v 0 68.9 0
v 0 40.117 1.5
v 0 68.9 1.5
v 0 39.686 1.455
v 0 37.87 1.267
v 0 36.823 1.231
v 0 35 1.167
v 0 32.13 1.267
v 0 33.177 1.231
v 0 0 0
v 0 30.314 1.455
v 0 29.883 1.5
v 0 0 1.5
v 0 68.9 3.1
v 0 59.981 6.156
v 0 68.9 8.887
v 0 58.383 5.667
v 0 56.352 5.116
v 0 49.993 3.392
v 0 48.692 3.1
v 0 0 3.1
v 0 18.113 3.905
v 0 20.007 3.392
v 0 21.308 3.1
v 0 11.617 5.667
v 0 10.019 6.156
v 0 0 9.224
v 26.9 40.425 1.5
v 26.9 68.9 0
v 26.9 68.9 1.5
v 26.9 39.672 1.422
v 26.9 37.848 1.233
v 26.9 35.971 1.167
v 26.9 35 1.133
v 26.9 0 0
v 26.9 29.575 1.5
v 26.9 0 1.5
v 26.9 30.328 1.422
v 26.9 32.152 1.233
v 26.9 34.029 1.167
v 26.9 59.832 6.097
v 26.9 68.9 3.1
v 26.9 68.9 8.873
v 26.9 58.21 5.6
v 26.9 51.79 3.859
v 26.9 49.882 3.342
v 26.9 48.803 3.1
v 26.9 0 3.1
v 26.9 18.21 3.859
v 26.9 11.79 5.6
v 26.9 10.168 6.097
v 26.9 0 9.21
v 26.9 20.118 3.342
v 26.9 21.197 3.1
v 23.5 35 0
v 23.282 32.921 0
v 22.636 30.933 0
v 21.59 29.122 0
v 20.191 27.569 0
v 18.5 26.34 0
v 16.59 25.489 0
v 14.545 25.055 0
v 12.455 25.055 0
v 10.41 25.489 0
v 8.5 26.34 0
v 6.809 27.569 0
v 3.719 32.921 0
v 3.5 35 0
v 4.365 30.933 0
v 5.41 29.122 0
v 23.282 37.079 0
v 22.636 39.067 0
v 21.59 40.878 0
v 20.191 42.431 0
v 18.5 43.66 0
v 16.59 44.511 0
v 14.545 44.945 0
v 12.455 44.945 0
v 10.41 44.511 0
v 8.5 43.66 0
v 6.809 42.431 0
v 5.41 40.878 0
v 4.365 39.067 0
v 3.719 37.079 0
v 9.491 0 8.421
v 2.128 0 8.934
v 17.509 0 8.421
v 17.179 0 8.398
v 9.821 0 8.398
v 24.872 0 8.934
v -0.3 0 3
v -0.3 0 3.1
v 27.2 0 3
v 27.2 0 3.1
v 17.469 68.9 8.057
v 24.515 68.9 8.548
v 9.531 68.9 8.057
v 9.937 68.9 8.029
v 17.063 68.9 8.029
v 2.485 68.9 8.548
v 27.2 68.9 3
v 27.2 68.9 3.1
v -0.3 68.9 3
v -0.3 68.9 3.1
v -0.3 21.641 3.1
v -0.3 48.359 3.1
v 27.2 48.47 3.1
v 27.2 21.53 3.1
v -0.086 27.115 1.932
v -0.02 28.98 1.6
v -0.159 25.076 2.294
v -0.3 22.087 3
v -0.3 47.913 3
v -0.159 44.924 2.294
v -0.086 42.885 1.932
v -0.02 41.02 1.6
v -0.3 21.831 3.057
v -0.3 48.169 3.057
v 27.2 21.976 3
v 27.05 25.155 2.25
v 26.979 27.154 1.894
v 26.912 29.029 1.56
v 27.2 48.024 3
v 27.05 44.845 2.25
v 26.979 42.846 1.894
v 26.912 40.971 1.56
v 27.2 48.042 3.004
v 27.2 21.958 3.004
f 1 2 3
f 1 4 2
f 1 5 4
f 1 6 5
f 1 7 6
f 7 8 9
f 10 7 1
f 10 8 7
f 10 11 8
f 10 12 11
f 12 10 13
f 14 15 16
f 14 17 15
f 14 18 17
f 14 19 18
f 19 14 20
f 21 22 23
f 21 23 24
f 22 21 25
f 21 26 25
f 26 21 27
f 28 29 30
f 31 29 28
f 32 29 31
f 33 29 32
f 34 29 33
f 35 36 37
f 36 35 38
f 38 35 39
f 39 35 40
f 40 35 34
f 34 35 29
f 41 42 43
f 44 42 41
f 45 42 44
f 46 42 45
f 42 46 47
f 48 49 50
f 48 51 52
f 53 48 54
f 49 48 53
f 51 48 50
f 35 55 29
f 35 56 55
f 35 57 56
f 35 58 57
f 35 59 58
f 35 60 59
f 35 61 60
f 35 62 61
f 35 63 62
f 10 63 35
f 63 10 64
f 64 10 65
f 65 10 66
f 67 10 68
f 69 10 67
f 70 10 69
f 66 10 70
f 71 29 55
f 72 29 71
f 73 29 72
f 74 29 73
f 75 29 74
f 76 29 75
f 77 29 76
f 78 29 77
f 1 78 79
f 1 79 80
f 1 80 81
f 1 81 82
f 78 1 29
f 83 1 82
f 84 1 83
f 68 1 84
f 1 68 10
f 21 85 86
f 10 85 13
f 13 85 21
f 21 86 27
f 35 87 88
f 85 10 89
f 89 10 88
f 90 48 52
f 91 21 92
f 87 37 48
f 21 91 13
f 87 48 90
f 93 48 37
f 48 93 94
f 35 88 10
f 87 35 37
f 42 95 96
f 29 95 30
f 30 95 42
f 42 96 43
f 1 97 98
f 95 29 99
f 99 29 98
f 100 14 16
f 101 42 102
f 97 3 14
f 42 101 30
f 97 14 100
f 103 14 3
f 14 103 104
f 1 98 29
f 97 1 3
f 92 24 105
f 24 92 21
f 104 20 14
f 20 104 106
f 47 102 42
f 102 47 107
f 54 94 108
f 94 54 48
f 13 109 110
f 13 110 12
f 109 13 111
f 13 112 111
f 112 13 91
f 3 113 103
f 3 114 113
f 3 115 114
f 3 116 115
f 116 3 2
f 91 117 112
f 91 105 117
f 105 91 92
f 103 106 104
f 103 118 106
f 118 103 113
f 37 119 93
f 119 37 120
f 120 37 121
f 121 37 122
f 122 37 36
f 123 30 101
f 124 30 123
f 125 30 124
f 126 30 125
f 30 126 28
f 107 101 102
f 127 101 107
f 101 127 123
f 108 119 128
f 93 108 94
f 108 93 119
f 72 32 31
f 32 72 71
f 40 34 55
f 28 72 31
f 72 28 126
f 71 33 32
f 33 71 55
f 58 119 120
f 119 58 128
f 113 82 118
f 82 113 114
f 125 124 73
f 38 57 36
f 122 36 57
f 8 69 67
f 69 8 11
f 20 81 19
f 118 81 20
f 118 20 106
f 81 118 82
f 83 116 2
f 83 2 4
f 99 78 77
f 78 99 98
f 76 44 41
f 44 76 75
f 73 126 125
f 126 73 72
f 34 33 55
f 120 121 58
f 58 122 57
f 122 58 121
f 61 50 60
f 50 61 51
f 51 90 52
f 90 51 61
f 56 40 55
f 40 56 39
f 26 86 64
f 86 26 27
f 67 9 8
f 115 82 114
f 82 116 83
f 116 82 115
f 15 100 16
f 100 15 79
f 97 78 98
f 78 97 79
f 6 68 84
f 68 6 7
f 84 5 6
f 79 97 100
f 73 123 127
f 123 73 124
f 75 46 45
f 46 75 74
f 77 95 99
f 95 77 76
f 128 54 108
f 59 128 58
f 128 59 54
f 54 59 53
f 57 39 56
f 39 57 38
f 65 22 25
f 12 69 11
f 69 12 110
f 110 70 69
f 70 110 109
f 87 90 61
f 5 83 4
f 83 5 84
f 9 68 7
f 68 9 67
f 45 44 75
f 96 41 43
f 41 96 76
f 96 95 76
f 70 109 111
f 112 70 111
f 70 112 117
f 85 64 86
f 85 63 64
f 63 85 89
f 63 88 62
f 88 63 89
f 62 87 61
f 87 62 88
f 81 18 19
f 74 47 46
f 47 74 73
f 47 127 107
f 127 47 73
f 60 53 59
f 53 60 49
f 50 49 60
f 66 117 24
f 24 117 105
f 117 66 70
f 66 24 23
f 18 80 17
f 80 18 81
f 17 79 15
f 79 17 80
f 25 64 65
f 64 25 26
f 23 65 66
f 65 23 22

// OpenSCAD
$fn=30;

/* Diffuser Lense For A Particular Project (OpenSCAD) */
tol = 0.1;

/* LED PCB */
holedia   = 16;

/* Diffuser spec */
dheight = 10;
thickness = 1.5;
standoff = 1.5;
holediffuser = holedia+4;

/* Camera Chamber */
camchamberw_org = 27;
camchamberh_org = 70;

camchamberw = camchamberw_org - tol;
camchamberh = camchamberh_org - tol -1;



/* Enclosure hole */
enclosurew = 19;

/* Diffuser */
difference()
{
  union()
  {
    // Body
    cube( [camchamberw,camchamberh, dheight]);

    // Grip
    translate([0, 0, standoff])
    {
      hull()
      {
        translate([0, 0, 0])
          cube([camchamberw,camchamberh,0.1], center = false);
        translate([-0.6/2, 0, thickness])
          cube([camchamberw+0.6,camchamberh,0.1], center = false);
      }
    }
  }

  translate([camchamberw_org/2,camchamberh_org/2,0])
  linear_extrude(height = dheight, scale=4) 
    circle(d=holediffuser);
}

/* Camera Frame Model */
%translate([-tol/2,-tol/2,-2])
union()
{
  %linear_extrude(height = 2) 
  {
     difference() 
    {
       offset(r = 0) 
        square(size = [camchamberw_org,camchamberh_org], center = false);
       offset(r = -2) 
        square(size = [camchamberw_org,camchamberh_org], center = false);
     }
  }
  %translate([camchamberw_org/2,camchamberh_org/2,-thickness/2])
     cylinder(thickness,d=holedia);
}
